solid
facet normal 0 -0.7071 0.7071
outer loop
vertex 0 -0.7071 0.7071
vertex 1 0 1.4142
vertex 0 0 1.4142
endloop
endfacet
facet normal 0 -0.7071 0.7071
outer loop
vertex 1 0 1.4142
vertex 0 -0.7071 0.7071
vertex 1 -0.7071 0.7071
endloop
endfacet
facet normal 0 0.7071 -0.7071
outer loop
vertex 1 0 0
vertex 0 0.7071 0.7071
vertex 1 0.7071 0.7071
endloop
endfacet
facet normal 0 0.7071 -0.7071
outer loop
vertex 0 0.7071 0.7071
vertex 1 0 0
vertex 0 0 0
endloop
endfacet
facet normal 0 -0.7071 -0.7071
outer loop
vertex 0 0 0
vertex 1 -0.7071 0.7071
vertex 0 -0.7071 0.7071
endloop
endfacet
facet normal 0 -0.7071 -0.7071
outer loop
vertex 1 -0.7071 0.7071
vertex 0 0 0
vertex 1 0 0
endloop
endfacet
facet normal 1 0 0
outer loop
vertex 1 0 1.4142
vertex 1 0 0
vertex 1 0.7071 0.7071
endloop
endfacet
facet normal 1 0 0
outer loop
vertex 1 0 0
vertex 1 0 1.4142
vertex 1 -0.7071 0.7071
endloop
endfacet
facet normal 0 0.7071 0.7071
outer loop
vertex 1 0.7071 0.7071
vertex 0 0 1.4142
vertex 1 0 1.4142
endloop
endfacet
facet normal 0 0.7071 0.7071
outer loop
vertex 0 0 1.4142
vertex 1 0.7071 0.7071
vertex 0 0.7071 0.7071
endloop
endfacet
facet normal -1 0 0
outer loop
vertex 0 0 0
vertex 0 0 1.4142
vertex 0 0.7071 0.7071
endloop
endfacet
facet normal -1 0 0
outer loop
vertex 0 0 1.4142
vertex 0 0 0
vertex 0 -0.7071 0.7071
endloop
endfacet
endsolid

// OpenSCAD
module rotated_cube(size, angle) {
  translate([size[0], size[1], size[2]]);
  rotate([angle, 0, 0])
    cube([size[0], size[1], size[2]]);
}

// Example usage:
rotated_cube(10, 45);
